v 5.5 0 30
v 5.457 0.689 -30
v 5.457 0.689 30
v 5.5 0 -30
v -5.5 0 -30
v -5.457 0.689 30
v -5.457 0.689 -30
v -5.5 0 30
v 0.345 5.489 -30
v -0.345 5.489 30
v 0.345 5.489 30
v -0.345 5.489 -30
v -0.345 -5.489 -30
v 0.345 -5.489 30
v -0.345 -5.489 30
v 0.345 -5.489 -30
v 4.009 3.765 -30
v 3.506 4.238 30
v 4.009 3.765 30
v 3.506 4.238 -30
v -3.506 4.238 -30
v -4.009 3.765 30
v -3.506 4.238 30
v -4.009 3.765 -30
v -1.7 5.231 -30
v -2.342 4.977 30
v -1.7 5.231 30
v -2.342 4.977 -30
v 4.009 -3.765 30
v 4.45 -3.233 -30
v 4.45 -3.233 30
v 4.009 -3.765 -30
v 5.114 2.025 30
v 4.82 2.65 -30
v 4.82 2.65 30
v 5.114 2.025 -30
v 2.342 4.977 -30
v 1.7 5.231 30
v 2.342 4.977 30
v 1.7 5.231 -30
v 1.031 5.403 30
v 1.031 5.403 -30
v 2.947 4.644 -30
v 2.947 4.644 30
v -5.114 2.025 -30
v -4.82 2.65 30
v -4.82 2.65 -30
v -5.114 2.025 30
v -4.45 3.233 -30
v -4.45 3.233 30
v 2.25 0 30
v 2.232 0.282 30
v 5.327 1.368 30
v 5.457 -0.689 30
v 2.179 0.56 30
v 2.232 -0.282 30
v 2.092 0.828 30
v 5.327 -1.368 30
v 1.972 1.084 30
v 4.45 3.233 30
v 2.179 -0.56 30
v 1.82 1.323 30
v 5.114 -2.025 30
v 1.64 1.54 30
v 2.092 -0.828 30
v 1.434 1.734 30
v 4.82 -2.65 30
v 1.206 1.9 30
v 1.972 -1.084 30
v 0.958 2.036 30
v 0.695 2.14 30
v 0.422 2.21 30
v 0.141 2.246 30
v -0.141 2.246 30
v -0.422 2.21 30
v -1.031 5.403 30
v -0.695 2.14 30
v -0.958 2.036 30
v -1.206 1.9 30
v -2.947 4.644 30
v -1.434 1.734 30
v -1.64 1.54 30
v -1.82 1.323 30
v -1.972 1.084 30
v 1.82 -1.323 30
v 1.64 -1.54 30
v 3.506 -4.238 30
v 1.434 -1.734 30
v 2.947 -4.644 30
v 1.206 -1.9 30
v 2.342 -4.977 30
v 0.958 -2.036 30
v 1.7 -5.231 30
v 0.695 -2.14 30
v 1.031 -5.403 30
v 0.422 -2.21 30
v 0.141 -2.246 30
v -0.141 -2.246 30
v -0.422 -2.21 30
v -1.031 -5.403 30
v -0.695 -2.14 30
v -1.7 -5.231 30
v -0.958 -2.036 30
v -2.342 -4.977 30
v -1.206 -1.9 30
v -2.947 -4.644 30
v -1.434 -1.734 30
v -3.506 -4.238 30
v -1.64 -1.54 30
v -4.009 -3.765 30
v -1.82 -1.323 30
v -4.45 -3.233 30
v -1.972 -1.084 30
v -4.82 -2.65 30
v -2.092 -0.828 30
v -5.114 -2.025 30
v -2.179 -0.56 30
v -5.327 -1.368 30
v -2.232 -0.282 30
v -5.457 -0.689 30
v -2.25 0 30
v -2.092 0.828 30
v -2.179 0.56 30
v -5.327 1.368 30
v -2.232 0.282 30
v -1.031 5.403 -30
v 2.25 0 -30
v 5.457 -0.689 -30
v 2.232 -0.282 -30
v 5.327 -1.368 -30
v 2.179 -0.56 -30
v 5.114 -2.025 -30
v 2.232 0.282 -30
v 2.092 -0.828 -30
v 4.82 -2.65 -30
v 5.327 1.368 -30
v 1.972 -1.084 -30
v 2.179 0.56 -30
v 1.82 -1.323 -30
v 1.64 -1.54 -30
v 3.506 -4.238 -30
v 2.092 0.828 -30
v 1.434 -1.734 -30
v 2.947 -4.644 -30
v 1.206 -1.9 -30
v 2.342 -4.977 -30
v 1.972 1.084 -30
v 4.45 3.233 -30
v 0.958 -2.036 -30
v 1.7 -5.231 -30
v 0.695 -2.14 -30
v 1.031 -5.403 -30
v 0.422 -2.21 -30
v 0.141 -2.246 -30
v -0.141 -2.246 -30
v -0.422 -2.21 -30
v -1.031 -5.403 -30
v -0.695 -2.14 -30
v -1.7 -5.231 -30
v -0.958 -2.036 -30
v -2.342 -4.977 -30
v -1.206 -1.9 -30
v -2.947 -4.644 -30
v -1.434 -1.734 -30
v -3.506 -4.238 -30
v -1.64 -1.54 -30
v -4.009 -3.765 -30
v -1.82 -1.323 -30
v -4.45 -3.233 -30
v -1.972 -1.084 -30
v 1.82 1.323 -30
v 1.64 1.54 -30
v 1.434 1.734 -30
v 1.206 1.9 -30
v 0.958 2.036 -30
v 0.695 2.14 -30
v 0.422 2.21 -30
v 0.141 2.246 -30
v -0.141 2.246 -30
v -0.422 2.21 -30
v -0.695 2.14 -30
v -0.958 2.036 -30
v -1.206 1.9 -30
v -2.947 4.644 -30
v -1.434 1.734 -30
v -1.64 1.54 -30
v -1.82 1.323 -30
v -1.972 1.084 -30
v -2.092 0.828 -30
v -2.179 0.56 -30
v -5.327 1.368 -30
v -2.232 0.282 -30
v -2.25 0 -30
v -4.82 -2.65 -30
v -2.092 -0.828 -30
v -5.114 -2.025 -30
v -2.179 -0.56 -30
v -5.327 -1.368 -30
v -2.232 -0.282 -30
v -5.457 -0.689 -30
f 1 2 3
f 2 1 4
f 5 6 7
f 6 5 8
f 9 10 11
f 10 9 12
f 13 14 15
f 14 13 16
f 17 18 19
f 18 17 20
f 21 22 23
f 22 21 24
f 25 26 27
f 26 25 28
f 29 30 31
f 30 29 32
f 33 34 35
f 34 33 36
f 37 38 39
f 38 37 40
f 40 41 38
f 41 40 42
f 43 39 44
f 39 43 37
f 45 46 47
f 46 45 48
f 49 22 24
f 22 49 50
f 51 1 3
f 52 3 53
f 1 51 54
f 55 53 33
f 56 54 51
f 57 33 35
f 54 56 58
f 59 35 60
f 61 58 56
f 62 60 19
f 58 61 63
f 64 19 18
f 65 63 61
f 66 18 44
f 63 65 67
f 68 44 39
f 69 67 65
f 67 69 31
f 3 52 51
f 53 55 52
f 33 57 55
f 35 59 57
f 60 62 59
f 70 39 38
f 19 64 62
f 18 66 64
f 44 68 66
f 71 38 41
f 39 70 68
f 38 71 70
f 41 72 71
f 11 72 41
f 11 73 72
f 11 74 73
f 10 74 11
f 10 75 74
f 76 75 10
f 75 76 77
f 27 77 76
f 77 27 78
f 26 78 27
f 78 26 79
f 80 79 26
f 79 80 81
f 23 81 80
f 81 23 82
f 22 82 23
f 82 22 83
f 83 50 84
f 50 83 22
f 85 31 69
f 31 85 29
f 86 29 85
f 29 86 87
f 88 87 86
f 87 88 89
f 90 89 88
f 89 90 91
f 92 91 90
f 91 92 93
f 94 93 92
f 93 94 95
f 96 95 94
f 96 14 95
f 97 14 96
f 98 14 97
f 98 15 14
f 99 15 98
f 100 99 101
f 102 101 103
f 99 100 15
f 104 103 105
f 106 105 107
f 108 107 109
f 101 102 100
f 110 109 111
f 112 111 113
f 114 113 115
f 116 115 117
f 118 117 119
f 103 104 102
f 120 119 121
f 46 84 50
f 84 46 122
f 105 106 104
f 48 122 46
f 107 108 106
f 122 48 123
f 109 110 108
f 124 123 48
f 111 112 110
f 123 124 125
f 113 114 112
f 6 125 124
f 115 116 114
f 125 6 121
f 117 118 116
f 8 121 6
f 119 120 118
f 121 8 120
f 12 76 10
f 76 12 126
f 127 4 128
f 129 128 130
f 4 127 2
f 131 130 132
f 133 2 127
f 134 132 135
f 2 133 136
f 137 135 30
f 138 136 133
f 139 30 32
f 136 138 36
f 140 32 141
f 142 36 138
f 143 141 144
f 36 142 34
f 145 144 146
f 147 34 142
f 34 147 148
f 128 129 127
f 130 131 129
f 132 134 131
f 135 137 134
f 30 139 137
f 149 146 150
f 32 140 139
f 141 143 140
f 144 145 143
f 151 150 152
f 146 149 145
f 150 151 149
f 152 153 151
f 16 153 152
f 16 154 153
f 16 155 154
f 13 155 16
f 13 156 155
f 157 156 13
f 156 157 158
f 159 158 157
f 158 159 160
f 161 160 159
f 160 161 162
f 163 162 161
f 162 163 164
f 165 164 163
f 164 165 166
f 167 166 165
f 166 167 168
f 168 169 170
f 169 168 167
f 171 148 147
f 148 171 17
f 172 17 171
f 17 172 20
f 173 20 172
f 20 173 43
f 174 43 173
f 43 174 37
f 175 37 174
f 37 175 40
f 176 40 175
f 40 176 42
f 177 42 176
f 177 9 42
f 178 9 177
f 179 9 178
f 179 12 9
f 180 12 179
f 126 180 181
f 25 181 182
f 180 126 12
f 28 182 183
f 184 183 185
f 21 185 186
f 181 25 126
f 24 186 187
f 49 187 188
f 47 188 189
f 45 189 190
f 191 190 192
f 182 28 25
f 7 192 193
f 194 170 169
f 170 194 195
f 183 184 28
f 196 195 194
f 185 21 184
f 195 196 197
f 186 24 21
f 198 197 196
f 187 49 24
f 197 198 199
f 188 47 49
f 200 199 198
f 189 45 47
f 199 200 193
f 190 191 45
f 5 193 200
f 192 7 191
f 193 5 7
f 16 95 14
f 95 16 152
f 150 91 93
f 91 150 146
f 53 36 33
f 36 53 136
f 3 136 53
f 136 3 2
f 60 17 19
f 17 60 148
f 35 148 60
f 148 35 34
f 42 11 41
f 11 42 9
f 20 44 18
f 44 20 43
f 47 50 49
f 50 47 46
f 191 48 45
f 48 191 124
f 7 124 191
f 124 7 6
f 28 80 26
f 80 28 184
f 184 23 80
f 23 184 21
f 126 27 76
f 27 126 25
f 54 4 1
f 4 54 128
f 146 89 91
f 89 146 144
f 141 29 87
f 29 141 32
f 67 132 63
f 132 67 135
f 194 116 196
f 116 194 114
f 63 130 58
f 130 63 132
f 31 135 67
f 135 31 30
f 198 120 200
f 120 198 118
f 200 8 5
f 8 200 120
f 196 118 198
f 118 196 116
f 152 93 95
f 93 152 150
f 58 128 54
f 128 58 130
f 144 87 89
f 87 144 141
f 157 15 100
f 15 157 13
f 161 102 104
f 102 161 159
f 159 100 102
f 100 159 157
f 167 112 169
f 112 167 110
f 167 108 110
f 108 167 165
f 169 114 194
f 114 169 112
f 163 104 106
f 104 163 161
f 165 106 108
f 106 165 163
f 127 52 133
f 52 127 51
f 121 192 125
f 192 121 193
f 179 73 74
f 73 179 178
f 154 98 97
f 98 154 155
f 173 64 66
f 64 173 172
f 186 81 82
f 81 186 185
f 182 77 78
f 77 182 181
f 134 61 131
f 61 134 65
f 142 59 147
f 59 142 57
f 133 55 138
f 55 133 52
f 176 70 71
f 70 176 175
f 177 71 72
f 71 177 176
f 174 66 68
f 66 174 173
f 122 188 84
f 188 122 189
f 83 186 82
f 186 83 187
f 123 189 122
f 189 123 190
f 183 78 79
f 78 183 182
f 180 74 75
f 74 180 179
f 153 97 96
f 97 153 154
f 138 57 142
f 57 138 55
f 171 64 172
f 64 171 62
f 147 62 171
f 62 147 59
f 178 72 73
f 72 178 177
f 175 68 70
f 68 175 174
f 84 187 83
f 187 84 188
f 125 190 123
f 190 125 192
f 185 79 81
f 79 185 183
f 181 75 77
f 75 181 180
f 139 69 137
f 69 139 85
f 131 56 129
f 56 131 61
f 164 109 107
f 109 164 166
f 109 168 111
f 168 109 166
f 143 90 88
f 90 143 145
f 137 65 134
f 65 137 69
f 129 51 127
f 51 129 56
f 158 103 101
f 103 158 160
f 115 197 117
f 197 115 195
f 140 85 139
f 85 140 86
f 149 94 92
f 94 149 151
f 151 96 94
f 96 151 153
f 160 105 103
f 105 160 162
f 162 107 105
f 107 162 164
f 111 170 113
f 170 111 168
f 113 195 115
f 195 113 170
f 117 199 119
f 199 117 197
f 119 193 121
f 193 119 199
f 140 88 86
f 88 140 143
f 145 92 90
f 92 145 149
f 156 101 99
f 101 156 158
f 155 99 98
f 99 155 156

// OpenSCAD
$fn = 50;


difference() {
	union() {
		translate(v = [0, 0, -30.0000000000]) {
			cylinder(h = 60, r = 5.5000000000);
		}
	}
	union() {
		translate(v = [0, 0, -100.0000000000]) {
			cylinder(h = 200, r = 2.2500000000);
		}
	}
}
